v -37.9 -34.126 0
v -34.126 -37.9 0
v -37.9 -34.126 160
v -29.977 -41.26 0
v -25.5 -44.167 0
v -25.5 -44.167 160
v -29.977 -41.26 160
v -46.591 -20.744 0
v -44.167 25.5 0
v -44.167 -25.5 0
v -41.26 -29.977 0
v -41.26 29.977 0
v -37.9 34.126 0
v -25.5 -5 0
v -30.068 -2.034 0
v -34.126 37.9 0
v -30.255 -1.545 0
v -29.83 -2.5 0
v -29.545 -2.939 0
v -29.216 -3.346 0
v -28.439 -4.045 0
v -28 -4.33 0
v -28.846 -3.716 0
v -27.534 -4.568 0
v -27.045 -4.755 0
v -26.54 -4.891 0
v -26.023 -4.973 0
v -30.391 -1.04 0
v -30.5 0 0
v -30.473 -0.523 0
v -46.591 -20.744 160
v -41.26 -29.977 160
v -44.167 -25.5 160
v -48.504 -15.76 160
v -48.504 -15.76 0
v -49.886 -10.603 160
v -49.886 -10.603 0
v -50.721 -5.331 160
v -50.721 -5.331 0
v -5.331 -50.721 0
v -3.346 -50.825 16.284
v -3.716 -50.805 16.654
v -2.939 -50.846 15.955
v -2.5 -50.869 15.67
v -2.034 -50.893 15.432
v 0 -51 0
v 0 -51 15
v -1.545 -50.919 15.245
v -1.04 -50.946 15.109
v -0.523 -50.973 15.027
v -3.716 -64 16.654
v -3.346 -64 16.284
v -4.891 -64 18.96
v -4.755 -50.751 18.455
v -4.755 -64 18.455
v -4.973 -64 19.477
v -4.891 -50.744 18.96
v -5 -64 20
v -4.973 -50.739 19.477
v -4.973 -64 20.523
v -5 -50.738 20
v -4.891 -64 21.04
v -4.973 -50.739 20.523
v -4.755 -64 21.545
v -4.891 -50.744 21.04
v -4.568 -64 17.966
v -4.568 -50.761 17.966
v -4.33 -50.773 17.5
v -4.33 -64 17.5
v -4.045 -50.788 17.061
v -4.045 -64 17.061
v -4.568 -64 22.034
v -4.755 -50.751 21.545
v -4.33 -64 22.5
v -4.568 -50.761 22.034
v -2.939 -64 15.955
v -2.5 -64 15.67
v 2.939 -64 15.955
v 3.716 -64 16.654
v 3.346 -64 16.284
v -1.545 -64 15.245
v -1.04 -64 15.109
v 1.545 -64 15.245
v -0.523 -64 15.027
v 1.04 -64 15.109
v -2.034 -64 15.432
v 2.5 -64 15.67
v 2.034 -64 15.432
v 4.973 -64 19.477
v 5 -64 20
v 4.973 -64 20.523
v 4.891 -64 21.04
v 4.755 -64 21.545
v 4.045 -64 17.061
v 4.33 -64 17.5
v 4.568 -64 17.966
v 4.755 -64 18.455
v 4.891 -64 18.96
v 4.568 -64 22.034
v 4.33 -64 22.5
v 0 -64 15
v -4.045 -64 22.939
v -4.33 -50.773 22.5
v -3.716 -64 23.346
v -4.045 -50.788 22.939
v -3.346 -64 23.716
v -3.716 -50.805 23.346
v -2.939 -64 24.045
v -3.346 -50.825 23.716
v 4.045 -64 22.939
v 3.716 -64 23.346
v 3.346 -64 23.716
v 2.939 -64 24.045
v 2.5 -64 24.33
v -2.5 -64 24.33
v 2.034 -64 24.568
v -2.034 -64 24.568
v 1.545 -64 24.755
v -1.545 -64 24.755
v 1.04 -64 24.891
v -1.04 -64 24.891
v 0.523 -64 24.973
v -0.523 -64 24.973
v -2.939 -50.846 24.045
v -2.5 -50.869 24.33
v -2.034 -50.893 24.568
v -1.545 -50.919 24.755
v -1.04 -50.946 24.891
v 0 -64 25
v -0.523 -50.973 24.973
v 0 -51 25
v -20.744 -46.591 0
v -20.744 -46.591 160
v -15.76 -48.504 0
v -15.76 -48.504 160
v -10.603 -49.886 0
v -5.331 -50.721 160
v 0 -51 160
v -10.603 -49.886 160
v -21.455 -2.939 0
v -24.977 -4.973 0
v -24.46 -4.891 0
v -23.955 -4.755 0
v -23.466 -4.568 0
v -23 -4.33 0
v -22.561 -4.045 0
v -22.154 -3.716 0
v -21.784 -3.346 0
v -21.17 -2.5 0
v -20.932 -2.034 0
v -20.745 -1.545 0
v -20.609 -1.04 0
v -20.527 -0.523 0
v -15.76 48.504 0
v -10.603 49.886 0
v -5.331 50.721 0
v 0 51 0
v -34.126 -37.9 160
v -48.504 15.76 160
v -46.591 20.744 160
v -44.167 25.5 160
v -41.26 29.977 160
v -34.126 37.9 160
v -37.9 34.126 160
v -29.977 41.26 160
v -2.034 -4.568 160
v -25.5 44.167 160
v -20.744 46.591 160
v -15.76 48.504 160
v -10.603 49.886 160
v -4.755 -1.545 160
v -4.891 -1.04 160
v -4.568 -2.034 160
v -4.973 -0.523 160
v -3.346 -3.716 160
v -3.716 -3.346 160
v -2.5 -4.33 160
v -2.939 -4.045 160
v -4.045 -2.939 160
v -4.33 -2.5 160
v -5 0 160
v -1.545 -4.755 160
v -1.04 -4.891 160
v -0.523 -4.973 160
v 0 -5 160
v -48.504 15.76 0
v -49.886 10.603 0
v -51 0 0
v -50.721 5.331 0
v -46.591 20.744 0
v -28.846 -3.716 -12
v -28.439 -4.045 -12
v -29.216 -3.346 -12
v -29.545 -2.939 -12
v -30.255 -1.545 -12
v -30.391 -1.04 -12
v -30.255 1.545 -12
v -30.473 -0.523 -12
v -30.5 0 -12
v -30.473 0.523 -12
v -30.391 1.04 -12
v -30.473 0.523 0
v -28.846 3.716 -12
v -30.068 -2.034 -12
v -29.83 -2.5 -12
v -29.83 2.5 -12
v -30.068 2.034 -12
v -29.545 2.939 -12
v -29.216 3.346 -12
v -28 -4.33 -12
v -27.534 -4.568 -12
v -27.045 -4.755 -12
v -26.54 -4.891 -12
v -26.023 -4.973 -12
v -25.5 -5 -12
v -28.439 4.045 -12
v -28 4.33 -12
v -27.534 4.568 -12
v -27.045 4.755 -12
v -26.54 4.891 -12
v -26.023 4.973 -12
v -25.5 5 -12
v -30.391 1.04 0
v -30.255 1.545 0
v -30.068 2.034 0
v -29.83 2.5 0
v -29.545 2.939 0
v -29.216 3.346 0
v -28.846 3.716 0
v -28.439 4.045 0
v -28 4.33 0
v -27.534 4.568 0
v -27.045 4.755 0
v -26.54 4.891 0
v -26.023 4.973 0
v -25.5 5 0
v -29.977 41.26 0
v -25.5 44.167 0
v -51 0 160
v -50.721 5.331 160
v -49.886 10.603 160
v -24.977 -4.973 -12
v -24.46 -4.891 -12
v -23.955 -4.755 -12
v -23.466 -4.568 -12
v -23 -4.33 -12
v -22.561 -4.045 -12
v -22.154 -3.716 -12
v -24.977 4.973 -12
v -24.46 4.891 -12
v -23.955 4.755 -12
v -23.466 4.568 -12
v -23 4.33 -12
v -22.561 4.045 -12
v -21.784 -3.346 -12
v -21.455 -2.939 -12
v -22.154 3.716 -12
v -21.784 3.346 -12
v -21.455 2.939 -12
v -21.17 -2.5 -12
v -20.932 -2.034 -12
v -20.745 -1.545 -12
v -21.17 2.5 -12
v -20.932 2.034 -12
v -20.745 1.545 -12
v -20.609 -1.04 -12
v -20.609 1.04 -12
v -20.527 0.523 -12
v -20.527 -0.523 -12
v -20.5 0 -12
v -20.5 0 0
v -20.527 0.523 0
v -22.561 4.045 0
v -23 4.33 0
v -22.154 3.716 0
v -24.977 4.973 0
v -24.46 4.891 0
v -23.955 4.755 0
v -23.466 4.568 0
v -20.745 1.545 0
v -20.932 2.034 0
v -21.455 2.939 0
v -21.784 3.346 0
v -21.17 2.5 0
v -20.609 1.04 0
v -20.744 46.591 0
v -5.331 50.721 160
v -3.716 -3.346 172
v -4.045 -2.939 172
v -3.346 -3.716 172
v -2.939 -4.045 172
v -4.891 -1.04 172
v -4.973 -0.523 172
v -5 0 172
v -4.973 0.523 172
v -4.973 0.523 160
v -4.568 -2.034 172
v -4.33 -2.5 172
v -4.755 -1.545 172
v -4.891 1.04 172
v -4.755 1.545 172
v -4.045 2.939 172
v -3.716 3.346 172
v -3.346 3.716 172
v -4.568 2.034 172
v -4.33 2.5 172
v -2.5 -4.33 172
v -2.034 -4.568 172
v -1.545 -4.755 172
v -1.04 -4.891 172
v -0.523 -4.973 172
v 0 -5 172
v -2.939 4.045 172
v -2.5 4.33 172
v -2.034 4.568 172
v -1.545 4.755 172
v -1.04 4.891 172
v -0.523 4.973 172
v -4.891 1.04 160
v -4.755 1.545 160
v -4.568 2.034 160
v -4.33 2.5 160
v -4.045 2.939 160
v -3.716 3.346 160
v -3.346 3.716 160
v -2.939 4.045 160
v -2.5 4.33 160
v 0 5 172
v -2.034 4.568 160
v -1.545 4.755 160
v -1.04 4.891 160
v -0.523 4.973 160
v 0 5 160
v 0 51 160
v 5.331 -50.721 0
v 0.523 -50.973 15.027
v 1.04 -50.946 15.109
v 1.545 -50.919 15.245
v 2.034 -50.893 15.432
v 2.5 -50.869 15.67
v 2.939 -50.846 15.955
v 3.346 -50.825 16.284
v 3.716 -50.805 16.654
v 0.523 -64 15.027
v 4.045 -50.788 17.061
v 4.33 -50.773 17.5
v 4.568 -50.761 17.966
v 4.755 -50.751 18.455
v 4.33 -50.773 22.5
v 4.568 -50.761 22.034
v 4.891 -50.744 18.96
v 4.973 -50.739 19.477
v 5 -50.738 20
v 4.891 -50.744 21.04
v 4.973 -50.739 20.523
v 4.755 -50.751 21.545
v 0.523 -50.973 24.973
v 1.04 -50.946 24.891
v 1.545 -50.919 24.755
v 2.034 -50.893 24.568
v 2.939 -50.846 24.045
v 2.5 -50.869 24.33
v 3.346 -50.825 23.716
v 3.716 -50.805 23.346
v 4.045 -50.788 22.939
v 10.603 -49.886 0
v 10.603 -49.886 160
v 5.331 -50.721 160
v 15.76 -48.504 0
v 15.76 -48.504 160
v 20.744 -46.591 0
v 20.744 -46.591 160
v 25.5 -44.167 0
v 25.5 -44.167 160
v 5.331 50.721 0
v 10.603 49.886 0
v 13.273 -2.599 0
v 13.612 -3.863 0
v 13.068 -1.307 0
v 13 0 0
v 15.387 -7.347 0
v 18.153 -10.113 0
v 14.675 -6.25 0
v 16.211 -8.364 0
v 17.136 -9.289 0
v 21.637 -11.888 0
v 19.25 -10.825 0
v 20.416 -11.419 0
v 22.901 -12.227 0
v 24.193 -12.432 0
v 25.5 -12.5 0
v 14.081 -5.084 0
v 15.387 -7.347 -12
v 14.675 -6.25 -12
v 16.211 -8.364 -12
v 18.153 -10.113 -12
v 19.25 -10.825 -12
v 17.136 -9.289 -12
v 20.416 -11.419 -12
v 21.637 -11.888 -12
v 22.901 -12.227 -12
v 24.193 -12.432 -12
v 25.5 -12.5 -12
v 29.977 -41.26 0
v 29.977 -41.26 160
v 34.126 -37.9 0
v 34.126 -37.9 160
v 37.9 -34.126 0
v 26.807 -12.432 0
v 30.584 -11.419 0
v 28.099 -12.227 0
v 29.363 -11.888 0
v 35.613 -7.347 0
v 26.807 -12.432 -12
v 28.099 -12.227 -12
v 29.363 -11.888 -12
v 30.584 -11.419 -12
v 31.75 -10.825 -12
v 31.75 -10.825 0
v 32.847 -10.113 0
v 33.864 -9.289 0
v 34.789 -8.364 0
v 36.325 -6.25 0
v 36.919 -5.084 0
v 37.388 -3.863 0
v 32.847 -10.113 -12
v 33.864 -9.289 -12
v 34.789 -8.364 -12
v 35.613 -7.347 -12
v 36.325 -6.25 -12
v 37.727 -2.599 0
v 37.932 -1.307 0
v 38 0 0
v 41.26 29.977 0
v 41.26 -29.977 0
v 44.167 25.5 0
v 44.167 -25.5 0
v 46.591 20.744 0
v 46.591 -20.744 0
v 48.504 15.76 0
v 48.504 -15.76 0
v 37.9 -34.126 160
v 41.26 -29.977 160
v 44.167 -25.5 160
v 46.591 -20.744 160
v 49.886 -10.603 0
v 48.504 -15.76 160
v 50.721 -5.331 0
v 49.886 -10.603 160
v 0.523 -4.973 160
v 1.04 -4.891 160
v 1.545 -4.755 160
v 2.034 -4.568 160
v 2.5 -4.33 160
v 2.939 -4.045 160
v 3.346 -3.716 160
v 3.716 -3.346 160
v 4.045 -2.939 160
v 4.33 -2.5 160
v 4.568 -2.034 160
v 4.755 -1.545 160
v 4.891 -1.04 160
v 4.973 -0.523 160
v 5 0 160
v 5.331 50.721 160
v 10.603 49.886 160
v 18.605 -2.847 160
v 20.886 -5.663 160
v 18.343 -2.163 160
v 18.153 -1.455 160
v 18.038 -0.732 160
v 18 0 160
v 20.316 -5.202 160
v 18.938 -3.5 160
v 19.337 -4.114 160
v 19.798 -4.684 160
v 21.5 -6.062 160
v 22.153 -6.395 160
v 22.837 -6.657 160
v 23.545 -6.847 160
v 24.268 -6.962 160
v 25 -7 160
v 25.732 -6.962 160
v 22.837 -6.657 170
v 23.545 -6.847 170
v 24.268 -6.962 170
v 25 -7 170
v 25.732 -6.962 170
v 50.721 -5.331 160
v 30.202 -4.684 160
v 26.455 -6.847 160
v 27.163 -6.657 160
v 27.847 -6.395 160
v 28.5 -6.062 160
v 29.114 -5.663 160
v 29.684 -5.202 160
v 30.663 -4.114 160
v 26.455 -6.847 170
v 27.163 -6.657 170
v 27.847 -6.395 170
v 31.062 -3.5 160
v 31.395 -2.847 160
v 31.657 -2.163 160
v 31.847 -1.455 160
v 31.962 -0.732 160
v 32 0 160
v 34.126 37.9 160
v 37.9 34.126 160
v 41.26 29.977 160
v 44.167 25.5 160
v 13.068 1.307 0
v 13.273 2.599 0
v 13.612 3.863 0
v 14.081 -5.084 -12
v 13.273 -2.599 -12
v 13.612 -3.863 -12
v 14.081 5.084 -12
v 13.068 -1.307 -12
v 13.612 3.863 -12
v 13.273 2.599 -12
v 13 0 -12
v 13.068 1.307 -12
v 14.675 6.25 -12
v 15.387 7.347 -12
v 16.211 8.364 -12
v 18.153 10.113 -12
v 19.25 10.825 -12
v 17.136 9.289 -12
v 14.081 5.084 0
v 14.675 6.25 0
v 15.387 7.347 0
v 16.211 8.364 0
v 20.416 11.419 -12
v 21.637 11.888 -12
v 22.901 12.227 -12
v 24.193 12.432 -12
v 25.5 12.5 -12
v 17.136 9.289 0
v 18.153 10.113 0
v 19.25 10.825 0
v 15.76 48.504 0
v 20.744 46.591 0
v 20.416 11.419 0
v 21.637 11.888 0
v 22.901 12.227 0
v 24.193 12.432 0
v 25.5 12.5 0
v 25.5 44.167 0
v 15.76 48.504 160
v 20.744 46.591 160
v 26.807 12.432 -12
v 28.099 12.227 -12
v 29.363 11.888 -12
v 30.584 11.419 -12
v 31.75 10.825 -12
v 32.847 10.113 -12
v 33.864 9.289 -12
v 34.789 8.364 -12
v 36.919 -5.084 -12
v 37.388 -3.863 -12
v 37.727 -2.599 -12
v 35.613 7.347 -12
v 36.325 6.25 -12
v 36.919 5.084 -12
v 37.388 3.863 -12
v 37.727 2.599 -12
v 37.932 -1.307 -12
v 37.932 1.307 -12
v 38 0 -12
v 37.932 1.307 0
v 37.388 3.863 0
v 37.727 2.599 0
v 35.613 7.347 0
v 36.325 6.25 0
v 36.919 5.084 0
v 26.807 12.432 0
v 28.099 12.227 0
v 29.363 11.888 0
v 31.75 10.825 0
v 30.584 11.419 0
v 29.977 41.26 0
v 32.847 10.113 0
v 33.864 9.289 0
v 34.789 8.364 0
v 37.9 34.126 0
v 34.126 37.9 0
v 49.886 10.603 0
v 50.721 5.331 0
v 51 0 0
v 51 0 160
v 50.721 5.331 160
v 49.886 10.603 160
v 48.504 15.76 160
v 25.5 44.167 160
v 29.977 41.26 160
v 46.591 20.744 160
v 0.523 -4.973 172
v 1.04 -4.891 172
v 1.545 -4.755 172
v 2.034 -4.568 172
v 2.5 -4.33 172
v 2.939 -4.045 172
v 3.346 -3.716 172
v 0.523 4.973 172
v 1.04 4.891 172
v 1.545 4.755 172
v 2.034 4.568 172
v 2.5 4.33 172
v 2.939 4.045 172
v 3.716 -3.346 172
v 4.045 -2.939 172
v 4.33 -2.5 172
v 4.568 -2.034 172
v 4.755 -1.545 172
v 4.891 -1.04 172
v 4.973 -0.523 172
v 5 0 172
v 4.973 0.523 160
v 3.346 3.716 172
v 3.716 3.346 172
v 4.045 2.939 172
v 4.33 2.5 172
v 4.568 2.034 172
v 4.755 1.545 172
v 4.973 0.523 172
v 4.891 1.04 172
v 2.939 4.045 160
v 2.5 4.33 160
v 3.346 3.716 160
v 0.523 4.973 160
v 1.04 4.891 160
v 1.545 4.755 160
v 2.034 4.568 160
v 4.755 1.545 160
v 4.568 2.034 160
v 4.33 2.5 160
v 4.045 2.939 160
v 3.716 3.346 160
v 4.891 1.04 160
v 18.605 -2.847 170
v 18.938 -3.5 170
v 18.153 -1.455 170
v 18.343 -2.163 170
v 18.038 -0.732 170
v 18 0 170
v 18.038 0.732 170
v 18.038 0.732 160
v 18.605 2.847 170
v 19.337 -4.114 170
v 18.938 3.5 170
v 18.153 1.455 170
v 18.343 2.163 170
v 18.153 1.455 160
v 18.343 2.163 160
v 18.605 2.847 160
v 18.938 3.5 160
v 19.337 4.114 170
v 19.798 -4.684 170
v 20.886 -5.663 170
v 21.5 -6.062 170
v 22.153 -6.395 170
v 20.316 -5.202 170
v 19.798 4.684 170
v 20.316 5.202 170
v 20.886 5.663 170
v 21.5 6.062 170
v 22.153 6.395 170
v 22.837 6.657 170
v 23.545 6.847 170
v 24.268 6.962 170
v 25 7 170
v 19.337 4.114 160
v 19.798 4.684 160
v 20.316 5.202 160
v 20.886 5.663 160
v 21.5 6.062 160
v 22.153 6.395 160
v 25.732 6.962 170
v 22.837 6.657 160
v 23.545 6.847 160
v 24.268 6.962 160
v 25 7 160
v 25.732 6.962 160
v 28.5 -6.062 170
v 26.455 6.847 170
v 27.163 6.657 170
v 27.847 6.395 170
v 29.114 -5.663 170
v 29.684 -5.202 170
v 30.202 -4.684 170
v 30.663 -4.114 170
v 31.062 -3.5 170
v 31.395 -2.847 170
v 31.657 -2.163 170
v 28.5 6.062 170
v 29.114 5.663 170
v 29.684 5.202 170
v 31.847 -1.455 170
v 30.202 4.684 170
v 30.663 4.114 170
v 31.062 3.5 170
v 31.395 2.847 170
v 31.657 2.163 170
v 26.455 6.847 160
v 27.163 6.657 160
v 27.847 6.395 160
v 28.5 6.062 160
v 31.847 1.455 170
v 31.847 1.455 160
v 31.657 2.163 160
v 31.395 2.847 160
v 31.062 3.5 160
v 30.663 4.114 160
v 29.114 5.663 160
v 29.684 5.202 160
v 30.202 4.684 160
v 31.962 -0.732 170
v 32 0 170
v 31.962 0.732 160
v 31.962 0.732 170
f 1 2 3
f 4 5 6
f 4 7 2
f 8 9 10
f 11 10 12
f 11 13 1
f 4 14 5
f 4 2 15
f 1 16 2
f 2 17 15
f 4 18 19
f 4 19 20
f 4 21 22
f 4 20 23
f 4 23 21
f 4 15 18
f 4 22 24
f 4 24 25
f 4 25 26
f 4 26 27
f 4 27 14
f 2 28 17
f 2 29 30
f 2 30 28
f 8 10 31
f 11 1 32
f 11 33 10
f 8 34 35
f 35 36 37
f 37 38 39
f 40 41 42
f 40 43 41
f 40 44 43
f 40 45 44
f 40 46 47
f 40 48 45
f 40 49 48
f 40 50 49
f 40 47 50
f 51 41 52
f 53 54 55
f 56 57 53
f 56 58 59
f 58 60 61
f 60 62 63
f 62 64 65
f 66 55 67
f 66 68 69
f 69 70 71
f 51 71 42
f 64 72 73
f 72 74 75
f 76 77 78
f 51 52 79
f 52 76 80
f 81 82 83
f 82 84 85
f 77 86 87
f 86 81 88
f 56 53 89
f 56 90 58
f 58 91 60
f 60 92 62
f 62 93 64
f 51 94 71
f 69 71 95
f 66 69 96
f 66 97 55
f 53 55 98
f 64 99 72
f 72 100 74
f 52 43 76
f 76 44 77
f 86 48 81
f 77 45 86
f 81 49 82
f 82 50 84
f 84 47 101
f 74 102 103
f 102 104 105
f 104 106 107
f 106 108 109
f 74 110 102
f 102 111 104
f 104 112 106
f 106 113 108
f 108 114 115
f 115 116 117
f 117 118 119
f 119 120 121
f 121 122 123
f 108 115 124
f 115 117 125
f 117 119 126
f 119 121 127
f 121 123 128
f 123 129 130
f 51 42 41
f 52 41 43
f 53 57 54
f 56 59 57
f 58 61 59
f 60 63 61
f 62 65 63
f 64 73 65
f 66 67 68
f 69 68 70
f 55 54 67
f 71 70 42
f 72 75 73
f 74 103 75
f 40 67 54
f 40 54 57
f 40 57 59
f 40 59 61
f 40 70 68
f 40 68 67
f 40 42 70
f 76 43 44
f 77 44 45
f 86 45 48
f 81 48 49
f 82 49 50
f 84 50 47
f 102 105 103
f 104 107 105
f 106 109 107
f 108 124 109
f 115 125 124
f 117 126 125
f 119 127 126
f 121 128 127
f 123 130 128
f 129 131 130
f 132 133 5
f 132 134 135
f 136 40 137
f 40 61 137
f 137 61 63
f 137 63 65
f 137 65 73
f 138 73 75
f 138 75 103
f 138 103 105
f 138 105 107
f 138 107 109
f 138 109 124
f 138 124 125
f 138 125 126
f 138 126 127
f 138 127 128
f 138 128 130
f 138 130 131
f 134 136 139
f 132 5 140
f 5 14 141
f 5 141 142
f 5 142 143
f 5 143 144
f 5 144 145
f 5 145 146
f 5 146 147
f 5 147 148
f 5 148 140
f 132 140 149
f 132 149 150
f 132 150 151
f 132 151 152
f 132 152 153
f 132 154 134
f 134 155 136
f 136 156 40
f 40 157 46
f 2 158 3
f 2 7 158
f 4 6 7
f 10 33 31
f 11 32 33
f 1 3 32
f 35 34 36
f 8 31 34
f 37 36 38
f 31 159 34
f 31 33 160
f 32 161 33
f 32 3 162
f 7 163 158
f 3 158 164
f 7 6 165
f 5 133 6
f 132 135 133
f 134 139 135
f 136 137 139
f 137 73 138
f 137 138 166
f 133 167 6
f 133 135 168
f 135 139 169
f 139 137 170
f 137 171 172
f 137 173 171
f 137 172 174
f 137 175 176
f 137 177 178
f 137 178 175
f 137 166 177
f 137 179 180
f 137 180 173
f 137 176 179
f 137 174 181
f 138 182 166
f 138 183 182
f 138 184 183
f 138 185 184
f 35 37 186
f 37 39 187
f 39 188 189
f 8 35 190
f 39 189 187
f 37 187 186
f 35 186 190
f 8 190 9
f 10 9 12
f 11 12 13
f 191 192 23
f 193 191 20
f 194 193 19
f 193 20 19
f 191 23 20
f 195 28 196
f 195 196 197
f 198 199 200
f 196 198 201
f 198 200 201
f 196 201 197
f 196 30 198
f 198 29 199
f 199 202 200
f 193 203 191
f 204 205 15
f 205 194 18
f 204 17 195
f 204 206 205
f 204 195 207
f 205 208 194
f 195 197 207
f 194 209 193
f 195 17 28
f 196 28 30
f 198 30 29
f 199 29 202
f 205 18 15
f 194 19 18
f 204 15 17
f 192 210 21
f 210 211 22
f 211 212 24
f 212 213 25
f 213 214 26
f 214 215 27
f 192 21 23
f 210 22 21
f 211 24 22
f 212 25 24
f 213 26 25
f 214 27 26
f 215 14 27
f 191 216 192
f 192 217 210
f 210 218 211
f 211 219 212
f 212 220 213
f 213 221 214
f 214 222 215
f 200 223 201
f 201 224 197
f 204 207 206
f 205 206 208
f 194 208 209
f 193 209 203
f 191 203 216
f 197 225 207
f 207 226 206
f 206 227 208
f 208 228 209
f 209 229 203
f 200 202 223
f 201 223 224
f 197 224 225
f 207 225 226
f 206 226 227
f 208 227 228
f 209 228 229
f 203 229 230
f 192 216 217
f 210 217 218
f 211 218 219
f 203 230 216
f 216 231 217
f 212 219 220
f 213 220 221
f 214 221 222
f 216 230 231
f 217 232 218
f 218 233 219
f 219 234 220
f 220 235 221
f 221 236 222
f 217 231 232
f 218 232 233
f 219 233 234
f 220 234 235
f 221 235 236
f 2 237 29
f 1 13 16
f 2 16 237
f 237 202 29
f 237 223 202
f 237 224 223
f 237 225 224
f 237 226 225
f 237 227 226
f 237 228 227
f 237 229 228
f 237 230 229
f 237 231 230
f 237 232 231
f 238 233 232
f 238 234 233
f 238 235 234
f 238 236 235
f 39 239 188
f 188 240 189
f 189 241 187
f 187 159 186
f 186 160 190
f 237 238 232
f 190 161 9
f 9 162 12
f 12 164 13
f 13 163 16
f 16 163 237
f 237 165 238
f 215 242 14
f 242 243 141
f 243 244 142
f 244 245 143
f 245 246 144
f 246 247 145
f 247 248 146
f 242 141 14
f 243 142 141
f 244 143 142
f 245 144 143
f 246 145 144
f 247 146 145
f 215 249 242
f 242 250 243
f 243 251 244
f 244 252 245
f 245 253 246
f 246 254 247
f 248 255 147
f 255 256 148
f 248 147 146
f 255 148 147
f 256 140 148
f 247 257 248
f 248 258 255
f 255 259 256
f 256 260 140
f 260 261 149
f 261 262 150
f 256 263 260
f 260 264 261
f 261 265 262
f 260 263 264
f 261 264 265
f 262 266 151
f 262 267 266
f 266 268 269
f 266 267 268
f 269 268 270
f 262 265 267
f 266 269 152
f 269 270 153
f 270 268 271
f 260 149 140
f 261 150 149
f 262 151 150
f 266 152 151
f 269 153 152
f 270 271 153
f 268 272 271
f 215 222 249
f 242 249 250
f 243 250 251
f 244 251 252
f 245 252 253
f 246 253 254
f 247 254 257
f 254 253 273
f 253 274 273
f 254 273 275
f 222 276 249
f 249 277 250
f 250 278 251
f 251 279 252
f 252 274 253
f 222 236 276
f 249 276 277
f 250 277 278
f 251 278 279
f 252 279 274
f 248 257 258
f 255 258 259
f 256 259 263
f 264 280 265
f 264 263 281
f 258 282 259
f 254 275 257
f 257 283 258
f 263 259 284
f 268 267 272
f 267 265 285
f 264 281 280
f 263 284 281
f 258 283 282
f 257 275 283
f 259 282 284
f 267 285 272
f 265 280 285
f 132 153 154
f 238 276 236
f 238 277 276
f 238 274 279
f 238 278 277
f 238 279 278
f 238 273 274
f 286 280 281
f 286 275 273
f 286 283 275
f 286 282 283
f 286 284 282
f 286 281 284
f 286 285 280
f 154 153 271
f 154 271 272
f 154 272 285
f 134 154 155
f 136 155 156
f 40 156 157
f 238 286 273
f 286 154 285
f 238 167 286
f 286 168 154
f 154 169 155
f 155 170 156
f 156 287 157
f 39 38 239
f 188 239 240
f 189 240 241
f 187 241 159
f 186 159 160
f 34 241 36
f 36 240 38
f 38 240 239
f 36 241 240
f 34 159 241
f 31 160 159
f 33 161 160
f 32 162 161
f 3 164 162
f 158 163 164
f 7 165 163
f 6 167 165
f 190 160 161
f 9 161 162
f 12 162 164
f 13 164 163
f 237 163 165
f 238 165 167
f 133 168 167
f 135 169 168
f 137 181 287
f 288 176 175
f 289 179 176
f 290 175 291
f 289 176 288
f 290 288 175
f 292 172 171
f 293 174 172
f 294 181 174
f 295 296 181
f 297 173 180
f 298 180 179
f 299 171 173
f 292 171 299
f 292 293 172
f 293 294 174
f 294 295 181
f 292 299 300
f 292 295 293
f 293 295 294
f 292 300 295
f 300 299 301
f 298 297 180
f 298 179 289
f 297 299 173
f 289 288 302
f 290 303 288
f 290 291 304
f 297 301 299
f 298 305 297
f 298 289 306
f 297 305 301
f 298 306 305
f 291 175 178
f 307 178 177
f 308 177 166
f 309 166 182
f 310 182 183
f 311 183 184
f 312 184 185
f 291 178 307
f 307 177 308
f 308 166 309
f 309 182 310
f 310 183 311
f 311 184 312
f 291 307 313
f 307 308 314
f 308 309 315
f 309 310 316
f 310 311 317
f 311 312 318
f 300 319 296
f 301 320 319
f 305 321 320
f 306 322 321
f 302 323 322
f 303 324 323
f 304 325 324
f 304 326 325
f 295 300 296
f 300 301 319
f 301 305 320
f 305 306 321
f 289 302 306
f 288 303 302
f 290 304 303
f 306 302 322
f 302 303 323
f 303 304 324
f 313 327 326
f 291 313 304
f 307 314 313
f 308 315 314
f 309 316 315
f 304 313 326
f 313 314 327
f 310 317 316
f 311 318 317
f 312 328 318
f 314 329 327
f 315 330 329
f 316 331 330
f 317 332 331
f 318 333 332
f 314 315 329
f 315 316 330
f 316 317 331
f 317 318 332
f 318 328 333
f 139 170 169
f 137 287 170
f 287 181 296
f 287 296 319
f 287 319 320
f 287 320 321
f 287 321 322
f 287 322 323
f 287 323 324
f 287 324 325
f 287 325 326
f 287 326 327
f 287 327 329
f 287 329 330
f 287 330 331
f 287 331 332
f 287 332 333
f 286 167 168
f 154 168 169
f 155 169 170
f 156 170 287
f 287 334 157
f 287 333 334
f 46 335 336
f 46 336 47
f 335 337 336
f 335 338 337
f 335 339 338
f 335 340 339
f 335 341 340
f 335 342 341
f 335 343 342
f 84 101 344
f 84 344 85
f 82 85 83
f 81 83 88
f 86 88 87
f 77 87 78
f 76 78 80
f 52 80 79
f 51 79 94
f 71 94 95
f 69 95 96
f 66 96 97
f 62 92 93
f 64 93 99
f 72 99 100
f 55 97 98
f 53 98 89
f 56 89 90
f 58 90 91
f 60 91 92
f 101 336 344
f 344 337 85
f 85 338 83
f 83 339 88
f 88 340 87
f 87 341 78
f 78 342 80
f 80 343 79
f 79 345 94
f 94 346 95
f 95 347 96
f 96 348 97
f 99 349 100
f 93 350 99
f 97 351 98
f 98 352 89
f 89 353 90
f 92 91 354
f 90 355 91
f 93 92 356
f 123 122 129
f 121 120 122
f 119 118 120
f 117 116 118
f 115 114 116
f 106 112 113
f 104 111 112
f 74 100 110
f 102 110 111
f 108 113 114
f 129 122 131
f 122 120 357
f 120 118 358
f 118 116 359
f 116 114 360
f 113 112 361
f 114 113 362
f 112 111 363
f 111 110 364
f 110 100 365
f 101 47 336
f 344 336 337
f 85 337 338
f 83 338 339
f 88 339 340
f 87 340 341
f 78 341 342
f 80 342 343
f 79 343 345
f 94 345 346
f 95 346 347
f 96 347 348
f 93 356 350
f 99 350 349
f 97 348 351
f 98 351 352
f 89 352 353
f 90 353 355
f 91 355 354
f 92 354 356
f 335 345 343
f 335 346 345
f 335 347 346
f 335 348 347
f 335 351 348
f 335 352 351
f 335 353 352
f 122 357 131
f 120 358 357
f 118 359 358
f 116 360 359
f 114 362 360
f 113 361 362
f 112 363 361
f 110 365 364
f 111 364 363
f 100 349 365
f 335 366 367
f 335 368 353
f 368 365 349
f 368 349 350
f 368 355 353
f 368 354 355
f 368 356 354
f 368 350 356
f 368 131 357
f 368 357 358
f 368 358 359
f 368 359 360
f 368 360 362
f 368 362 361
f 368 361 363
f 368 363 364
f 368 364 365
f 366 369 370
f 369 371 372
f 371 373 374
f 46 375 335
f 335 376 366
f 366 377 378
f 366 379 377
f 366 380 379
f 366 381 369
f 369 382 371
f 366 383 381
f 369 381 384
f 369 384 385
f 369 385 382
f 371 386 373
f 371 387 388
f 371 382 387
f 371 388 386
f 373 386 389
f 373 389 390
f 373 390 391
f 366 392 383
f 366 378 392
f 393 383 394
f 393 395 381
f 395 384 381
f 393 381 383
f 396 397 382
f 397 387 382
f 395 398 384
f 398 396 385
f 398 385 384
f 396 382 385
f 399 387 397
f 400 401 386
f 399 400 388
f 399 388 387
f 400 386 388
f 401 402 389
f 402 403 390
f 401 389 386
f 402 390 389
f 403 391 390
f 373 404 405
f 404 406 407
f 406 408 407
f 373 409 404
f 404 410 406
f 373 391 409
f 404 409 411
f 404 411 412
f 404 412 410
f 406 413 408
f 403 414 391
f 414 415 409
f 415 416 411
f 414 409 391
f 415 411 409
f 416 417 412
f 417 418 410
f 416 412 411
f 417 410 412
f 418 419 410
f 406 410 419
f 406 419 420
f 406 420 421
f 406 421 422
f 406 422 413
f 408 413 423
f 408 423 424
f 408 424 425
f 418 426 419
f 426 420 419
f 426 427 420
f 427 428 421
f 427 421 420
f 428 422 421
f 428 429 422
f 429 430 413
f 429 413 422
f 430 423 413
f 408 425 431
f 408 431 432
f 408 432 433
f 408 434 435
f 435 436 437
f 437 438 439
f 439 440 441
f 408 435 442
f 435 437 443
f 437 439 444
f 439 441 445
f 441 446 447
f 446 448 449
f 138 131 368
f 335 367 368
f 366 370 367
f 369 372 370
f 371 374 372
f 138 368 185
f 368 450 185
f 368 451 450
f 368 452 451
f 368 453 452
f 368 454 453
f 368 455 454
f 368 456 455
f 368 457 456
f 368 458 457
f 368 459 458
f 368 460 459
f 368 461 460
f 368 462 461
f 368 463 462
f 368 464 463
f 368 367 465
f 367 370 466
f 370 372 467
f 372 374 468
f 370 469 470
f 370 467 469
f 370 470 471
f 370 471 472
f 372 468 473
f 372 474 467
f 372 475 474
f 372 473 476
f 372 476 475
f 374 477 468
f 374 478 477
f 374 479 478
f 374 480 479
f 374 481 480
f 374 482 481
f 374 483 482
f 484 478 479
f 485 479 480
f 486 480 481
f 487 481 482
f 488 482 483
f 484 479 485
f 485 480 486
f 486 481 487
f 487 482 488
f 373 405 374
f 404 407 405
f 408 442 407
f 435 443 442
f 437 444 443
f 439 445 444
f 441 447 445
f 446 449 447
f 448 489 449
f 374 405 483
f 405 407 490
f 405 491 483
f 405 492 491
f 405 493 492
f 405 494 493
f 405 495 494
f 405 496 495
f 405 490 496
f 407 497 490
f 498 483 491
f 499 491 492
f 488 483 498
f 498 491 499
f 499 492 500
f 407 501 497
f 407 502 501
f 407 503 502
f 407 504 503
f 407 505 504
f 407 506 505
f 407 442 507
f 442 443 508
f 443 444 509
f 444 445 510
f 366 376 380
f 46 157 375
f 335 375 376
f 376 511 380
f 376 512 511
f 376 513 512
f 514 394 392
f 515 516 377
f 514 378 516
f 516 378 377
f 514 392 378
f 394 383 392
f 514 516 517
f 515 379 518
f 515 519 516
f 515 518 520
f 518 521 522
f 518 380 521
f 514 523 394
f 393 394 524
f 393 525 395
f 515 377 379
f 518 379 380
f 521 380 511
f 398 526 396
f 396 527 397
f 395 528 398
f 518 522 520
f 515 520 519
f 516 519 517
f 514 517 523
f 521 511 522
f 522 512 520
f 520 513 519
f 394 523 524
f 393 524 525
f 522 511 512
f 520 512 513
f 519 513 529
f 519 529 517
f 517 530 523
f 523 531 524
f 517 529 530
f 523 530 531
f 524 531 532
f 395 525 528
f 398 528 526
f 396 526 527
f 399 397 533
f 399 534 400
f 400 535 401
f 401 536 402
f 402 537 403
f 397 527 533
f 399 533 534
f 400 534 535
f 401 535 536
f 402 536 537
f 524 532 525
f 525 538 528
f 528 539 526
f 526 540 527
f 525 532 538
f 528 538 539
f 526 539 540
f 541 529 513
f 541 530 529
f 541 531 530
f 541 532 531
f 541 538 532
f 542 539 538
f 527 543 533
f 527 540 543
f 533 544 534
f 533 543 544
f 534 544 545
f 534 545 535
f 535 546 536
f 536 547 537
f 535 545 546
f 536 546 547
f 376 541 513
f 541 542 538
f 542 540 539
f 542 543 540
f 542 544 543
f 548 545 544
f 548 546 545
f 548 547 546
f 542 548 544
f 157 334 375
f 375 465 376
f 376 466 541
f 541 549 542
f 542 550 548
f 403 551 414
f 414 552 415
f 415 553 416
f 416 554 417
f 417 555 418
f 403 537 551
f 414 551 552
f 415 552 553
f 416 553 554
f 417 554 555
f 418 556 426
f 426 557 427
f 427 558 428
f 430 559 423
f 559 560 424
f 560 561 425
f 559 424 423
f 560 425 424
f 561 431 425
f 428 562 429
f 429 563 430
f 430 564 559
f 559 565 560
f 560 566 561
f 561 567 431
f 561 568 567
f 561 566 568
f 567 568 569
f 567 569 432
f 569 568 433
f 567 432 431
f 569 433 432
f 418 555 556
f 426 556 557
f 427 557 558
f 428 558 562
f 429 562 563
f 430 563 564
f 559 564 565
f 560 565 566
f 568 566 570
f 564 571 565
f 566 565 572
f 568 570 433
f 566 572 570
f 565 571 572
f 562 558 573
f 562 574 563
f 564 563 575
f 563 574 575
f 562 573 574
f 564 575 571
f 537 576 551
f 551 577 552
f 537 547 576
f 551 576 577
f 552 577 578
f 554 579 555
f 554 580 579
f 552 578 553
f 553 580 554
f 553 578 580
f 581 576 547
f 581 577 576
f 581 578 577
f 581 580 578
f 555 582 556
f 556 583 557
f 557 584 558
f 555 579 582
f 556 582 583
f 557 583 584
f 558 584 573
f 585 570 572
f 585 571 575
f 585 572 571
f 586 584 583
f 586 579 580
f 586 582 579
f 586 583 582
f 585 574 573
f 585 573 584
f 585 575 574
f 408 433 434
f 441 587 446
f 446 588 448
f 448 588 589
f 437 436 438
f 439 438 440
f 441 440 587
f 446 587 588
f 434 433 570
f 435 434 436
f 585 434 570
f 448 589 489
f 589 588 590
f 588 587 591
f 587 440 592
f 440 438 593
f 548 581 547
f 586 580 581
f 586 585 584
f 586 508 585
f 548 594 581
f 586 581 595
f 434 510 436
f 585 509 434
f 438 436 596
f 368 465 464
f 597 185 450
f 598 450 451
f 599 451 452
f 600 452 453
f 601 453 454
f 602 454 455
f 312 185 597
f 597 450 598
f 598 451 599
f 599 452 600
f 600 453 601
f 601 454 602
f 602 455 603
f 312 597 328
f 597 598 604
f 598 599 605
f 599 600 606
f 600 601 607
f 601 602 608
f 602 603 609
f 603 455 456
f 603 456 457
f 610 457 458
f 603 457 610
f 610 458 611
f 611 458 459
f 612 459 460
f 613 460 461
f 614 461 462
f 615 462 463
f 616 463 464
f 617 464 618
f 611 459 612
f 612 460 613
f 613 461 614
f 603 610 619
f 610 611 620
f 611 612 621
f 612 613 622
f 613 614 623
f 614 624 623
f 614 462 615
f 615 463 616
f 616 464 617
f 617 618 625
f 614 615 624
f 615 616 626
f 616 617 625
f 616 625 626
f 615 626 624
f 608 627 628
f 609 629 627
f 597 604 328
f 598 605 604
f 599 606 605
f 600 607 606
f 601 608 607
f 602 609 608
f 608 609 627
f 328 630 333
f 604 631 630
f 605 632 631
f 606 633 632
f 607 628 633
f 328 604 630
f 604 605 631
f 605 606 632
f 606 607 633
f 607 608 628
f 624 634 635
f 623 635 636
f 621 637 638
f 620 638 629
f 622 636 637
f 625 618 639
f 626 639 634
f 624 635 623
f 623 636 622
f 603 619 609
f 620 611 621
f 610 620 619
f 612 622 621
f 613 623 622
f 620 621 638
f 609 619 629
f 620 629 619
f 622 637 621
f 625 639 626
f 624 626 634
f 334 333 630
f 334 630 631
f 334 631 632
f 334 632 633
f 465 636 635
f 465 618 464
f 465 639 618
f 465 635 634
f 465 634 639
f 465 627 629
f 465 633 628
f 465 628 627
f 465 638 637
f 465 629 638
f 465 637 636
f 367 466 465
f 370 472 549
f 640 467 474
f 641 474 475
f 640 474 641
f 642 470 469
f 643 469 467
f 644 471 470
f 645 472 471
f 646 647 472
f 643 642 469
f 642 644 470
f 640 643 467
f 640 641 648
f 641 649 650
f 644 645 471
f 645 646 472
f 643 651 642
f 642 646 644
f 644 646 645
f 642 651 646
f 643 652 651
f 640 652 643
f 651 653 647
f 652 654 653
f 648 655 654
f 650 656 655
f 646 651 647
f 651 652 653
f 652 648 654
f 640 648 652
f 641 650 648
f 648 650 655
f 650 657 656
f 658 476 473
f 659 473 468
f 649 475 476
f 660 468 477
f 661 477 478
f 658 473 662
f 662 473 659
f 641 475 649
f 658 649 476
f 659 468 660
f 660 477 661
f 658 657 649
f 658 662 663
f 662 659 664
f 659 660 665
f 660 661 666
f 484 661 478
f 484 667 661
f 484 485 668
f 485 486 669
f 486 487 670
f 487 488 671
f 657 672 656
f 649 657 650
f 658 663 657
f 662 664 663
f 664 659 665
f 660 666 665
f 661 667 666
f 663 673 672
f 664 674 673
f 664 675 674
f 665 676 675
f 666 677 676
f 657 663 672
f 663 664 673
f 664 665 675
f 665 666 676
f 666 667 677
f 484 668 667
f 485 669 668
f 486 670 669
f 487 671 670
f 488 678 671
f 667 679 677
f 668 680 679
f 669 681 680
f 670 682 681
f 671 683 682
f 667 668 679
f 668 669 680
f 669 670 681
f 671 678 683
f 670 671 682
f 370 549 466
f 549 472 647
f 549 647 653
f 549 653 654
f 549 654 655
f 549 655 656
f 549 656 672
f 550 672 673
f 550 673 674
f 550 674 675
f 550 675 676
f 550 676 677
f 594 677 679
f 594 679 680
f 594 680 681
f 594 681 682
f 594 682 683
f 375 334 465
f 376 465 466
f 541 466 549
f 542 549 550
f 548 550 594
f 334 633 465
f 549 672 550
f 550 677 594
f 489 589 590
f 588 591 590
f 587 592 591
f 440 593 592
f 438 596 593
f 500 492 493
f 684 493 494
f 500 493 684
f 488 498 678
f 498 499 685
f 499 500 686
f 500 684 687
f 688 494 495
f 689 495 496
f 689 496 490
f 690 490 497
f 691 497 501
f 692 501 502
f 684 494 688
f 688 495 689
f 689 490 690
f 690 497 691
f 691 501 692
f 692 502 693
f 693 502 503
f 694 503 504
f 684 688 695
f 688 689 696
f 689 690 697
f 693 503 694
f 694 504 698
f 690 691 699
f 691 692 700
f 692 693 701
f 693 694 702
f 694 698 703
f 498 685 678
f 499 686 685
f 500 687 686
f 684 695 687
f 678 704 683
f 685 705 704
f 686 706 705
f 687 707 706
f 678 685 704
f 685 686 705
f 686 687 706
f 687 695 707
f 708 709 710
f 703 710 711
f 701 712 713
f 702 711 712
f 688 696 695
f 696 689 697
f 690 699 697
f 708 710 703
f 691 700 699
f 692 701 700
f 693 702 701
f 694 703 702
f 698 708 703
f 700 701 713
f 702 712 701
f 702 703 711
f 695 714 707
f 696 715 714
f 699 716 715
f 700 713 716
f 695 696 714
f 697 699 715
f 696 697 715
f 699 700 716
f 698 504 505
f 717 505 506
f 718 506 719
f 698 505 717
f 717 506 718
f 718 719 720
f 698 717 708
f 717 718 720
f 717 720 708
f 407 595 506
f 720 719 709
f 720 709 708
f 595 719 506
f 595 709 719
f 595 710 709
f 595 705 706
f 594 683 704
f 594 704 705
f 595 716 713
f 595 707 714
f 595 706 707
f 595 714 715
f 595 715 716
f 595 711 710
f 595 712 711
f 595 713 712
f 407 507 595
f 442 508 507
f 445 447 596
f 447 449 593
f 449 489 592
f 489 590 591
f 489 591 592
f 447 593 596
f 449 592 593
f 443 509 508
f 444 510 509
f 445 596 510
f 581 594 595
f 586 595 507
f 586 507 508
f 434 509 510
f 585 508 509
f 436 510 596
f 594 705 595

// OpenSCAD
// file: design_params.scad
/*
 * fika - shared design parameters, the single source of truth.
 *
 * Read by every cad/*.scad (include <design_params.scad>) and re-parsed by
 * scripts/design_params.py for scripts/check_layout.py and
 * tools/energy_budget.py, so a value changed here flips the whole pipeline
 * at once. scripts/check_params.py fails the build if any other .scad
 * shadows a name defined here.
 *
 * Keep every line a plain literal: name = value; (numbers, booleans, flat
 * vectors). No arithmetic - derived values are computed by the consumers.
 *
 * Units: mm, deg C, W, V, A, bar, g unless noted.
 * Coordinates: origin at the center of the base plate top surface.
 * X right, Y toward the back, Z up. Positions are component reference
 * points noted per name.
 */

// frame envelope (outer dimensions, CNC aluminum plates)
frame_w = 310;
frame_d = 320;
frame_h = 400;          // side plate height; sides run z -8..392
frame_plate_t = 8;      // structural plates: sides, base, rear, top
mount_plate_t = 6;      // group mount plate
mount_plate_d = 90;     // group mount plate depth (y extent)
mount_plate_y = 20;     // group mount plate front edge

// boiler (single, dual use, copper shell; position = bottom center)
boiler_od = 102;
boiler_h = 160;
boiler_wall = 2;
boiler_x = -50;
boiler_y = 180;
boiler_z = 150;
boiler_volume_l = 1.0;  // nominal fill, used by the energy budget

// heater and mains
heater_power_w = 1400;
mains_voltage = 230;
mains_breaker_a = 10;
brew_temp_c = 93;
steam_temp_c = 125;
max_temp_c = 135;       // firmware hard cutoff; mechanical cutoff above this

// pump: rotary vane head + mains motor, axis along X at the rear base
// (position = axis center; assembly centered on pump_x)
pump_head_d = 42;
pump_head_l = 105;
motor_d = 100;
motor_l = 160;
pump_x = 0;
pump_y = 255;
pump_z = 55;
opv_bar = 9;            // pump bypass back to reservoir
relief_bar = 12;        // boiler mechanical safety relief valve

// brew group and cup zone (position = group axis at tray center)
group_od = 70;
group_h = 90;
group_x = 0;
group_y = 65;
cup_clearance_h = 95;   // spout height above the tray top
cup_max_d = 90;

// drip tray with load cell scale (tray_z = top of load cell + gap)
tray_w = 200;
tray_d = 130;
tray_h = 30;
tray_y = 15;            // tray front edge
tray_z = 13;
loadcell_l = 55;        // TAL220-class bar load cell
loadcell_w = 12.7;
loadcell_h = 12.7;
scale_capacity_g = 1000;

// water tank (position = front face / bottom)
tank_w = 200;
tank_d = 55;
tank_h = 200;
tank_y = 245;
tank_z = 150;

// plumbing, copper lines
brew_line_od = 6;
brew_line_wall = 1;
steam_line_od = 6;

// layout rules (scripts/check_layout.py)
clearance = 10;         // minimum gap between component envelopes
clearance_wall = 5;     // minimum gap between components and frame plates
// main file
/*
 * fika - boiler envelope.
 * Purpose: layout placeholder for the single dual-use copper boiler.
 *          Origin at the bottom cap center. Stubs mark the ports: element
 *          boss and feed inlet below, brew outlet on the front face low,
 *          steam outlet and safety relief valve on top.
 * Material: copper shell, brass ports (pressure vessel, never printed)
 * Fabrication: cots
 */

include <design_params.scad>

$fn = 60;

module boiler() {
    color("#b87333") {
        cylinder(d = boiler_od, h = boiler_h);
        // heating element boss, enters through the bottom cap
        translate([boiler_od / 4, 0, -12]) cylinder(d = 25, h = 14);
        // feed water inlet from the pump
        translate([-boiler_od / 4, 0, -12]) cylinder(d = 10, h = 14);
        // brew outlet to the group, front face, low
        translate([0, -boiler_od / 2 + 2, 20])
            rotate([90, 0, 0]) cylinder(d = 10, h = 15);
        // steam outlet, top center
        translate([0, 0, boiler_h]) cylinder(d = 10, h = 12);
        // safety relief valve port, top
        translate([25, 0, boiler_h]) cylinder(d = 14, h = 10);
    }
}

boiler();
